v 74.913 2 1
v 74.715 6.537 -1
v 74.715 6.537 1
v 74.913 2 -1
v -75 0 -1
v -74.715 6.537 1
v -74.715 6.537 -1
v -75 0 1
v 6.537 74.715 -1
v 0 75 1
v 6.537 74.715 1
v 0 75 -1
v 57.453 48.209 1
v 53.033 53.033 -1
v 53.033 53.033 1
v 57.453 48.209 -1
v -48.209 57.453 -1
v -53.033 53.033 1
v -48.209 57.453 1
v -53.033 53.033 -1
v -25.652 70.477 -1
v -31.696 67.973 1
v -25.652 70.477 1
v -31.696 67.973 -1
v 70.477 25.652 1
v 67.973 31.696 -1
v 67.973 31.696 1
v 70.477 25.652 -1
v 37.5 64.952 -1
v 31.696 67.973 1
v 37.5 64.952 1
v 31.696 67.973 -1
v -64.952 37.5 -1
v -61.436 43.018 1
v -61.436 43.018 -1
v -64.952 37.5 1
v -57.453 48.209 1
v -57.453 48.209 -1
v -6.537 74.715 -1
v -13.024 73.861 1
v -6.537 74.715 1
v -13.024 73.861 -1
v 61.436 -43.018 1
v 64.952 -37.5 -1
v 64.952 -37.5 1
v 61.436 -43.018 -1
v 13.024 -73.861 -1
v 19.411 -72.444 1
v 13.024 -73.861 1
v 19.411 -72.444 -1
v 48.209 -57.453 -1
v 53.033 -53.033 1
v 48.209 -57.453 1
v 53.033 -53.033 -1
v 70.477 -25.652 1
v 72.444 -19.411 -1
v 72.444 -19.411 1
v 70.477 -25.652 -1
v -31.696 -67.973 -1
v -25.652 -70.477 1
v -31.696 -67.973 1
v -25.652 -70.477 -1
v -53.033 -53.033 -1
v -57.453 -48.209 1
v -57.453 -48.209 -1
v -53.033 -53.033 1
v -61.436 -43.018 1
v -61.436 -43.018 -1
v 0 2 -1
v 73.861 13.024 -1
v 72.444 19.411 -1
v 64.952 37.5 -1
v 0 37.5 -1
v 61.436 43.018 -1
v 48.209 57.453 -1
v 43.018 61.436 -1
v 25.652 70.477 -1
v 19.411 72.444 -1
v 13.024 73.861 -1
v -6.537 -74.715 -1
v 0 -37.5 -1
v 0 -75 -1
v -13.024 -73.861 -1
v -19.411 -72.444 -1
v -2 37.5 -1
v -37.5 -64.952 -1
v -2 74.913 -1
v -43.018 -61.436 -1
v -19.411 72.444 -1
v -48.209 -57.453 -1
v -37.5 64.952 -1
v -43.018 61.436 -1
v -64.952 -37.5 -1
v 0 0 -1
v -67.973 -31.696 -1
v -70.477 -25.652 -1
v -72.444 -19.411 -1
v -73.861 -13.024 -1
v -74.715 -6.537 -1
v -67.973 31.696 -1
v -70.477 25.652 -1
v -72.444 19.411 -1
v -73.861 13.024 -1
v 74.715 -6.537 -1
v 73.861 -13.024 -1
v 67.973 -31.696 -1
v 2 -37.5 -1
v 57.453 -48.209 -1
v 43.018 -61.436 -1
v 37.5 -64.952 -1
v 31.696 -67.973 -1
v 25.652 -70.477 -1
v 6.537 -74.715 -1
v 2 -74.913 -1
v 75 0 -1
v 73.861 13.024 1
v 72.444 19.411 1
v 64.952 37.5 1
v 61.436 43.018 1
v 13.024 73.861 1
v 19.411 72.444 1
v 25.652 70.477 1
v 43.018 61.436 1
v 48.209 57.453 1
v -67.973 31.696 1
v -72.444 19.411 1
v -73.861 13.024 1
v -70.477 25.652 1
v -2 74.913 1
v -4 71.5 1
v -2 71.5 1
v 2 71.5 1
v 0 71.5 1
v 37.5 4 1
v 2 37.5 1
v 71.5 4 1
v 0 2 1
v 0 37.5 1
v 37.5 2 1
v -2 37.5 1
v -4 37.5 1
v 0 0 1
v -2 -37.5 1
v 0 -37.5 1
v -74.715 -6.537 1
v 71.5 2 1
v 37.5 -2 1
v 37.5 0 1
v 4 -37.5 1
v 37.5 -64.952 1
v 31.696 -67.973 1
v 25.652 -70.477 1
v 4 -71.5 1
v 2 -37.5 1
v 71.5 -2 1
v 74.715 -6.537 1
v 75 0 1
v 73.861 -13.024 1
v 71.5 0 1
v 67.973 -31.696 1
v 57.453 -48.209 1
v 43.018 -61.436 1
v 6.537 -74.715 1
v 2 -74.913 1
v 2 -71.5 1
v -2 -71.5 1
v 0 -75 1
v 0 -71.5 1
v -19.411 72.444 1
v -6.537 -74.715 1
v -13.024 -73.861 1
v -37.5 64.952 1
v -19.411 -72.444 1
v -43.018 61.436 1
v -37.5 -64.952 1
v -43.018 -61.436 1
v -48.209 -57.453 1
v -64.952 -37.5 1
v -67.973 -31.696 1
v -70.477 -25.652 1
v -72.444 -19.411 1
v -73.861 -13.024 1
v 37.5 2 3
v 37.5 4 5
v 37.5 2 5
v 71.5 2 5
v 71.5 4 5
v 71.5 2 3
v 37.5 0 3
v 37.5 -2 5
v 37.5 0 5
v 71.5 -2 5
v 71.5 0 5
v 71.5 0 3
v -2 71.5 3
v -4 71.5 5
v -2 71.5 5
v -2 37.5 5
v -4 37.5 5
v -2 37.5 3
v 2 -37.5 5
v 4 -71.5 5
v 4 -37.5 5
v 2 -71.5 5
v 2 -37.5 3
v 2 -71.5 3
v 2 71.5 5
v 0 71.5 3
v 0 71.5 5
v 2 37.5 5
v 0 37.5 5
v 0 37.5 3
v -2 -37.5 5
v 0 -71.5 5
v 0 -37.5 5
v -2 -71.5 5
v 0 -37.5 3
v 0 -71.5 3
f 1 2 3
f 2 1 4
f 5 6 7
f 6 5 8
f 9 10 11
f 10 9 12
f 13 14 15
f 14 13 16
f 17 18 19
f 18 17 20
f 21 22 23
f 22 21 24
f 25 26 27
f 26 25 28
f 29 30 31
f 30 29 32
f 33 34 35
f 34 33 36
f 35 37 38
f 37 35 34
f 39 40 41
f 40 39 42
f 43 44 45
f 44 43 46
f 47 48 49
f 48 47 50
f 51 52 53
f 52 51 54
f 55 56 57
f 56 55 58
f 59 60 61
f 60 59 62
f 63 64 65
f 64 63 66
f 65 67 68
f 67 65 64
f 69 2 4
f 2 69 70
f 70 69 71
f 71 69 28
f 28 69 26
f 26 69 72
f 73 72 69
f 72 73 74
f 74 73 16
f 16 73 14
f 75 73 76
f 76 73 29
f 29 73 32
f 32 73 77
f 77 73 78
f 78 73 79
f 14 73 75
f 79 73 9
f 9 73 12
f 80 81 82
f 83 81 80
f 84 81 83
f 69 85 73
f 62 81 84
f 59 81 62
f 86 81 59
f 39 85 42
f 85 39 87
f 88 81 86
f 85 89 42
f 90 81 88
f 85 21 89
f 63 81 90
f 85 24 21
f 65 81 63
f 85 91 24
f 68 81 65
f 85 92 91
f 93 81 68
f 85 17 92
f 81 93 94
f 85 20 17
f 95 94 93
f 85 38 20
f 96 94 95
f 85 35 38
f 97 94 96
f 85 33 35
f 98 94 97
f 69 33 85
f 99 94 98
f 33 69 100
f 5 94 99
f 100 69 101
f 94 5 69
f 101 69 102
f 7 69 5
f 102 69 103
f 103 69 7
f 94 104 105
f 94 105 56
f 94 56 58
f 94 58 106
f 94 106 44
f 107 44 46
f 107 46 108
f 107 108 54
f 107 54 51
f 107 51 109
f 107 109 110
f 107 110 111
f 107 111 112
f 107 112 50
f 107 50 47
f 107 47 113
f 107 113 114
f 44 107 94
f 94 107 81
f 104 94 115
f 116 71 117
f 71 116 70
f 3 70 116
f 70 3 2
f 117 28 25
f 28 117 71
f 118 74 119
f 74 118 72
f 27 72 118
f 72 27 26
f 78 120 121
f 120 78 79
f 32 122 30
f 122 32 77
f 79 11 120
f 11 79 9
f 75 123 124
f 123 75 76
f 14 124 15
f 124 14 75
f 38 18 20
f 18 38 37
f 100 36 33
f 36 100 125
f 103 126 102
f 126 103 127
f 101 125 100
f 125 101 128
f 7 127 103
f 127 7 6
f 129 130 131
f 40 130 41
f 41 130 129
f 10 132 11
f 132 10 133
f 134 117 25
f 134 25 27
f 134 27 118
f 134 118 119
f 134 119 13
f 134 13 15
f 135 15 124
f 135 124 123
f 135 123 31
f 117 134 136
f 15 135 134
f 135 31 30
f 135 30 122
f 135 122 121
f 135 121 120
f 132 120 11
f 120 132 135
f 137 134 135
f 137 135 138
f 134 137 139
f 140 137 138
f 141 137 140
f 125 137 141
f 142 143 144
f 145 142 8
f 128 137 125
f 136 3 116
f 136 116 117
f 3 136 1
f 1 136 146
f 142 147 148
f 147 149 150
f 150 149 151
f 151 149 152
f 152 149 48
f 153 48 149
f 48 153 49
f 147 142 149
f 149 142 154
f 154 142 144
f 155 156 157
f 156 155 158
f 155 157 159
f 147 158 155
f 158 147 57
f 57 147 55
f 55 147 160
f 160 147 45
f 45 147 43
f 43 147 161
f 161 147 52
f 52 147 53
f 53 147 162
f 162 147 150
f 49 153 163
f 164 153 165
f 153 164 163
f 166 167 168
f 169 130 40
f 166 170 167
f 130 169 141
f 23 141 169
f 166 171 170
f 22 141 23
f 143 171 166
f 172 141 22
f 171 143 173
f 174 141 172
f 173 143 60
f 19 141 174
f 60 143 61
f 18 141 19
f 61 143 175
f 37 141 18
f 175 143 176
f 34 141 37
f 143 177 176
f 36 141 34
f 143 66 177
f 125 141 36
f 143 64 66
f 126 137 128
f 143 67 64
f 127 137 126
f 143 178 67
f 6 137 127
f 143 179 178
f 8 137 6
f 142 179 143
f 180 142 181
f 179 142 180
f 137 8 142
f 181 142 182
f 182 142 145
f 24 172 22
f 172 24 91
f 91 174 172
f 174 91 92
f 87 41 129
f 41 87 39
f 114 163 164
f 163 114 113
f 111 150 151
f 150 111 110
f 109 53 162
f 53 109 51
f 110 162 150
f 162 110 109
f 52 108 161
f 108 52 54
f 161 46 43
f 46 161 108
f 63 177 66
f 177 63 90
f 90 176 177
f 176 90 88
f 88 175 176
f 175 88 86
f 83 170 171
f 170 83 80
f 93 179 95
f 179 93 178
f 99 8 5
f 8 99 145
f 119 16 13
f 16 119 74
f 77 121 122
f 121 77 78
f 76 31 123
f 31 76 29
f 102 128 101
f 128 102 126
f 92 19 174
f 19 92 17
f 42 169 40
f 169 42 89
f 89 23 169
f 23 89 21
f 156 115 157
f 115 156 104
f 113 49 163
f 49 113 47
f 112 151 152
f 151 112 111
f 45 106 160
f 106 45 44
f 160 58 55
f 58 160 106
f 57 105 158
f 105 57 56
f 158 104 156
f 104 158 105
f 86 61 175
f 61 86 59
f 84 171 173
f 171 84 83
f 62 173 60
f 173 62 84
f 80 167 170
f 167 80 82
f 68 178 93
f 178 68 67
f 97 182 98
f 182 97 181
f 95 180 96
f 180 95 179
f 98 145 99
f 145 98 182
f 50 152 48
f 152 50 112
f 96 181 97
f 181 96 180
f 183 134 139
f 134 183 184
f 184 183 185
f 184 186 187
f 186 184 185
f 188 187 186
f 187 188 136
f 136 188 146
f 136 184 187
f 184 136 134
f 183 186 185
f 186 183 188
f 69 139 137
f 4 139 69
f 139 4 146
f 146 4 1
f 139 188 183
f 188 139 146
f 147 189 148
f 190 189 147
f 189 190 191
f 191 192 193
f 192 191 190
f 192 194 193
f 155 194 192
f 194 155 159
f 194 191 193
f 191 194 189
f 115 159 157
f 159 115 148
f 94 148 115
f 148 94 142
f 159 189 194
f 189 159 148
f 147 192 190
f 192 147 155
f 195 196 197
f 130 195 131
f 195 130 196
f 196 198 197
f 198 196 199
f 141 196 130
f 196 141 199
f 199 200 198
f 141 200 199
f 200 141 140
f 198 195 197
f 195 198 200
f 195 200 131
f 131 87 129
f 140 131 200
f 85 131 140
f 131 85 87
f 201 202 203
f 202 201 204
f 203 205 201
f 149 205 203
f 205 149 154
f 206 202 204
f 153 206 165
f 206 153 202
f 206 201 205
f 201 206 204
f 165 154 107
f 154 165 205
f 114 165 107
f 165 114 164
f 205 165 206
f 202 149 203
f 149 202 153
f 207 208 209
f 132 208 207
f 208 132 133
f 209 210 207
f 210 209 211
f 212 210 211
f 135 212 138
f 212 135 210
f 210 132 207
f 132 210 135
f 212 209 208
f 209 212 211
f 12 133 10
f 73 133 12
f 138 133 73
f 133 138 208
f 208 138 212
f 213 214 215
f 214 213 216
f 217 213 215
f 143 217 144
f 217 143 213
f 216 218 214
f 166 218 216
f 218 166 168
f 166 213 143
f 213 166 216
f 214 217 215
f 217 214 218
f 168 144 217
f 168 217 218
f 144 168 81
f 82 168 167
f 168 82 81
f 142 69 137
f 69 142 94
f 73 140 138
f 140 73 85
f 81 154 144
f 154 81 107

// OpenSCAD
// CSG-modules.scad - Basic usage of modules, if, color, $fs/$fa

// Global resolution
$fs = 0.1;  // Don't generate smaller facets than 0.1 mm
$fa = 5;    // Don't generate larger angles than 5 degrees

difference(){
    union(){
    base();
        riser1();
        riser2();
            rotate([0,0,90]) riser1();
            rotate([0,0,270]) riser1();
            rotate([0,0,90]) riser2();
            rotate([0,0,270]) riser2();        
    }
    baseSlot();
    rotate([0,0,90]) translate([37.5,0,0]) baseSlot();
    rotate([0,0,270]) translate([37.5,0,0]) baseSlot();

}


//rotate([0,0,90]) translate([37.5,0,0]) baseASlot();

module base() {
    color("Blue") cylinder(h=2, r=75, center=true);
    }
    
module baseSlot() {
    color("Red") translate([0,0,-3]) cube([76, 2, 6]); 
    }
   
module riser1() {
    color("Yellow") translate([37.5,2,1]) cube([34,2,4]);
    }    
    
module riser2() {
    color("Green") translate([37.5,-2,1]) cube([34,2,4]);
    }
